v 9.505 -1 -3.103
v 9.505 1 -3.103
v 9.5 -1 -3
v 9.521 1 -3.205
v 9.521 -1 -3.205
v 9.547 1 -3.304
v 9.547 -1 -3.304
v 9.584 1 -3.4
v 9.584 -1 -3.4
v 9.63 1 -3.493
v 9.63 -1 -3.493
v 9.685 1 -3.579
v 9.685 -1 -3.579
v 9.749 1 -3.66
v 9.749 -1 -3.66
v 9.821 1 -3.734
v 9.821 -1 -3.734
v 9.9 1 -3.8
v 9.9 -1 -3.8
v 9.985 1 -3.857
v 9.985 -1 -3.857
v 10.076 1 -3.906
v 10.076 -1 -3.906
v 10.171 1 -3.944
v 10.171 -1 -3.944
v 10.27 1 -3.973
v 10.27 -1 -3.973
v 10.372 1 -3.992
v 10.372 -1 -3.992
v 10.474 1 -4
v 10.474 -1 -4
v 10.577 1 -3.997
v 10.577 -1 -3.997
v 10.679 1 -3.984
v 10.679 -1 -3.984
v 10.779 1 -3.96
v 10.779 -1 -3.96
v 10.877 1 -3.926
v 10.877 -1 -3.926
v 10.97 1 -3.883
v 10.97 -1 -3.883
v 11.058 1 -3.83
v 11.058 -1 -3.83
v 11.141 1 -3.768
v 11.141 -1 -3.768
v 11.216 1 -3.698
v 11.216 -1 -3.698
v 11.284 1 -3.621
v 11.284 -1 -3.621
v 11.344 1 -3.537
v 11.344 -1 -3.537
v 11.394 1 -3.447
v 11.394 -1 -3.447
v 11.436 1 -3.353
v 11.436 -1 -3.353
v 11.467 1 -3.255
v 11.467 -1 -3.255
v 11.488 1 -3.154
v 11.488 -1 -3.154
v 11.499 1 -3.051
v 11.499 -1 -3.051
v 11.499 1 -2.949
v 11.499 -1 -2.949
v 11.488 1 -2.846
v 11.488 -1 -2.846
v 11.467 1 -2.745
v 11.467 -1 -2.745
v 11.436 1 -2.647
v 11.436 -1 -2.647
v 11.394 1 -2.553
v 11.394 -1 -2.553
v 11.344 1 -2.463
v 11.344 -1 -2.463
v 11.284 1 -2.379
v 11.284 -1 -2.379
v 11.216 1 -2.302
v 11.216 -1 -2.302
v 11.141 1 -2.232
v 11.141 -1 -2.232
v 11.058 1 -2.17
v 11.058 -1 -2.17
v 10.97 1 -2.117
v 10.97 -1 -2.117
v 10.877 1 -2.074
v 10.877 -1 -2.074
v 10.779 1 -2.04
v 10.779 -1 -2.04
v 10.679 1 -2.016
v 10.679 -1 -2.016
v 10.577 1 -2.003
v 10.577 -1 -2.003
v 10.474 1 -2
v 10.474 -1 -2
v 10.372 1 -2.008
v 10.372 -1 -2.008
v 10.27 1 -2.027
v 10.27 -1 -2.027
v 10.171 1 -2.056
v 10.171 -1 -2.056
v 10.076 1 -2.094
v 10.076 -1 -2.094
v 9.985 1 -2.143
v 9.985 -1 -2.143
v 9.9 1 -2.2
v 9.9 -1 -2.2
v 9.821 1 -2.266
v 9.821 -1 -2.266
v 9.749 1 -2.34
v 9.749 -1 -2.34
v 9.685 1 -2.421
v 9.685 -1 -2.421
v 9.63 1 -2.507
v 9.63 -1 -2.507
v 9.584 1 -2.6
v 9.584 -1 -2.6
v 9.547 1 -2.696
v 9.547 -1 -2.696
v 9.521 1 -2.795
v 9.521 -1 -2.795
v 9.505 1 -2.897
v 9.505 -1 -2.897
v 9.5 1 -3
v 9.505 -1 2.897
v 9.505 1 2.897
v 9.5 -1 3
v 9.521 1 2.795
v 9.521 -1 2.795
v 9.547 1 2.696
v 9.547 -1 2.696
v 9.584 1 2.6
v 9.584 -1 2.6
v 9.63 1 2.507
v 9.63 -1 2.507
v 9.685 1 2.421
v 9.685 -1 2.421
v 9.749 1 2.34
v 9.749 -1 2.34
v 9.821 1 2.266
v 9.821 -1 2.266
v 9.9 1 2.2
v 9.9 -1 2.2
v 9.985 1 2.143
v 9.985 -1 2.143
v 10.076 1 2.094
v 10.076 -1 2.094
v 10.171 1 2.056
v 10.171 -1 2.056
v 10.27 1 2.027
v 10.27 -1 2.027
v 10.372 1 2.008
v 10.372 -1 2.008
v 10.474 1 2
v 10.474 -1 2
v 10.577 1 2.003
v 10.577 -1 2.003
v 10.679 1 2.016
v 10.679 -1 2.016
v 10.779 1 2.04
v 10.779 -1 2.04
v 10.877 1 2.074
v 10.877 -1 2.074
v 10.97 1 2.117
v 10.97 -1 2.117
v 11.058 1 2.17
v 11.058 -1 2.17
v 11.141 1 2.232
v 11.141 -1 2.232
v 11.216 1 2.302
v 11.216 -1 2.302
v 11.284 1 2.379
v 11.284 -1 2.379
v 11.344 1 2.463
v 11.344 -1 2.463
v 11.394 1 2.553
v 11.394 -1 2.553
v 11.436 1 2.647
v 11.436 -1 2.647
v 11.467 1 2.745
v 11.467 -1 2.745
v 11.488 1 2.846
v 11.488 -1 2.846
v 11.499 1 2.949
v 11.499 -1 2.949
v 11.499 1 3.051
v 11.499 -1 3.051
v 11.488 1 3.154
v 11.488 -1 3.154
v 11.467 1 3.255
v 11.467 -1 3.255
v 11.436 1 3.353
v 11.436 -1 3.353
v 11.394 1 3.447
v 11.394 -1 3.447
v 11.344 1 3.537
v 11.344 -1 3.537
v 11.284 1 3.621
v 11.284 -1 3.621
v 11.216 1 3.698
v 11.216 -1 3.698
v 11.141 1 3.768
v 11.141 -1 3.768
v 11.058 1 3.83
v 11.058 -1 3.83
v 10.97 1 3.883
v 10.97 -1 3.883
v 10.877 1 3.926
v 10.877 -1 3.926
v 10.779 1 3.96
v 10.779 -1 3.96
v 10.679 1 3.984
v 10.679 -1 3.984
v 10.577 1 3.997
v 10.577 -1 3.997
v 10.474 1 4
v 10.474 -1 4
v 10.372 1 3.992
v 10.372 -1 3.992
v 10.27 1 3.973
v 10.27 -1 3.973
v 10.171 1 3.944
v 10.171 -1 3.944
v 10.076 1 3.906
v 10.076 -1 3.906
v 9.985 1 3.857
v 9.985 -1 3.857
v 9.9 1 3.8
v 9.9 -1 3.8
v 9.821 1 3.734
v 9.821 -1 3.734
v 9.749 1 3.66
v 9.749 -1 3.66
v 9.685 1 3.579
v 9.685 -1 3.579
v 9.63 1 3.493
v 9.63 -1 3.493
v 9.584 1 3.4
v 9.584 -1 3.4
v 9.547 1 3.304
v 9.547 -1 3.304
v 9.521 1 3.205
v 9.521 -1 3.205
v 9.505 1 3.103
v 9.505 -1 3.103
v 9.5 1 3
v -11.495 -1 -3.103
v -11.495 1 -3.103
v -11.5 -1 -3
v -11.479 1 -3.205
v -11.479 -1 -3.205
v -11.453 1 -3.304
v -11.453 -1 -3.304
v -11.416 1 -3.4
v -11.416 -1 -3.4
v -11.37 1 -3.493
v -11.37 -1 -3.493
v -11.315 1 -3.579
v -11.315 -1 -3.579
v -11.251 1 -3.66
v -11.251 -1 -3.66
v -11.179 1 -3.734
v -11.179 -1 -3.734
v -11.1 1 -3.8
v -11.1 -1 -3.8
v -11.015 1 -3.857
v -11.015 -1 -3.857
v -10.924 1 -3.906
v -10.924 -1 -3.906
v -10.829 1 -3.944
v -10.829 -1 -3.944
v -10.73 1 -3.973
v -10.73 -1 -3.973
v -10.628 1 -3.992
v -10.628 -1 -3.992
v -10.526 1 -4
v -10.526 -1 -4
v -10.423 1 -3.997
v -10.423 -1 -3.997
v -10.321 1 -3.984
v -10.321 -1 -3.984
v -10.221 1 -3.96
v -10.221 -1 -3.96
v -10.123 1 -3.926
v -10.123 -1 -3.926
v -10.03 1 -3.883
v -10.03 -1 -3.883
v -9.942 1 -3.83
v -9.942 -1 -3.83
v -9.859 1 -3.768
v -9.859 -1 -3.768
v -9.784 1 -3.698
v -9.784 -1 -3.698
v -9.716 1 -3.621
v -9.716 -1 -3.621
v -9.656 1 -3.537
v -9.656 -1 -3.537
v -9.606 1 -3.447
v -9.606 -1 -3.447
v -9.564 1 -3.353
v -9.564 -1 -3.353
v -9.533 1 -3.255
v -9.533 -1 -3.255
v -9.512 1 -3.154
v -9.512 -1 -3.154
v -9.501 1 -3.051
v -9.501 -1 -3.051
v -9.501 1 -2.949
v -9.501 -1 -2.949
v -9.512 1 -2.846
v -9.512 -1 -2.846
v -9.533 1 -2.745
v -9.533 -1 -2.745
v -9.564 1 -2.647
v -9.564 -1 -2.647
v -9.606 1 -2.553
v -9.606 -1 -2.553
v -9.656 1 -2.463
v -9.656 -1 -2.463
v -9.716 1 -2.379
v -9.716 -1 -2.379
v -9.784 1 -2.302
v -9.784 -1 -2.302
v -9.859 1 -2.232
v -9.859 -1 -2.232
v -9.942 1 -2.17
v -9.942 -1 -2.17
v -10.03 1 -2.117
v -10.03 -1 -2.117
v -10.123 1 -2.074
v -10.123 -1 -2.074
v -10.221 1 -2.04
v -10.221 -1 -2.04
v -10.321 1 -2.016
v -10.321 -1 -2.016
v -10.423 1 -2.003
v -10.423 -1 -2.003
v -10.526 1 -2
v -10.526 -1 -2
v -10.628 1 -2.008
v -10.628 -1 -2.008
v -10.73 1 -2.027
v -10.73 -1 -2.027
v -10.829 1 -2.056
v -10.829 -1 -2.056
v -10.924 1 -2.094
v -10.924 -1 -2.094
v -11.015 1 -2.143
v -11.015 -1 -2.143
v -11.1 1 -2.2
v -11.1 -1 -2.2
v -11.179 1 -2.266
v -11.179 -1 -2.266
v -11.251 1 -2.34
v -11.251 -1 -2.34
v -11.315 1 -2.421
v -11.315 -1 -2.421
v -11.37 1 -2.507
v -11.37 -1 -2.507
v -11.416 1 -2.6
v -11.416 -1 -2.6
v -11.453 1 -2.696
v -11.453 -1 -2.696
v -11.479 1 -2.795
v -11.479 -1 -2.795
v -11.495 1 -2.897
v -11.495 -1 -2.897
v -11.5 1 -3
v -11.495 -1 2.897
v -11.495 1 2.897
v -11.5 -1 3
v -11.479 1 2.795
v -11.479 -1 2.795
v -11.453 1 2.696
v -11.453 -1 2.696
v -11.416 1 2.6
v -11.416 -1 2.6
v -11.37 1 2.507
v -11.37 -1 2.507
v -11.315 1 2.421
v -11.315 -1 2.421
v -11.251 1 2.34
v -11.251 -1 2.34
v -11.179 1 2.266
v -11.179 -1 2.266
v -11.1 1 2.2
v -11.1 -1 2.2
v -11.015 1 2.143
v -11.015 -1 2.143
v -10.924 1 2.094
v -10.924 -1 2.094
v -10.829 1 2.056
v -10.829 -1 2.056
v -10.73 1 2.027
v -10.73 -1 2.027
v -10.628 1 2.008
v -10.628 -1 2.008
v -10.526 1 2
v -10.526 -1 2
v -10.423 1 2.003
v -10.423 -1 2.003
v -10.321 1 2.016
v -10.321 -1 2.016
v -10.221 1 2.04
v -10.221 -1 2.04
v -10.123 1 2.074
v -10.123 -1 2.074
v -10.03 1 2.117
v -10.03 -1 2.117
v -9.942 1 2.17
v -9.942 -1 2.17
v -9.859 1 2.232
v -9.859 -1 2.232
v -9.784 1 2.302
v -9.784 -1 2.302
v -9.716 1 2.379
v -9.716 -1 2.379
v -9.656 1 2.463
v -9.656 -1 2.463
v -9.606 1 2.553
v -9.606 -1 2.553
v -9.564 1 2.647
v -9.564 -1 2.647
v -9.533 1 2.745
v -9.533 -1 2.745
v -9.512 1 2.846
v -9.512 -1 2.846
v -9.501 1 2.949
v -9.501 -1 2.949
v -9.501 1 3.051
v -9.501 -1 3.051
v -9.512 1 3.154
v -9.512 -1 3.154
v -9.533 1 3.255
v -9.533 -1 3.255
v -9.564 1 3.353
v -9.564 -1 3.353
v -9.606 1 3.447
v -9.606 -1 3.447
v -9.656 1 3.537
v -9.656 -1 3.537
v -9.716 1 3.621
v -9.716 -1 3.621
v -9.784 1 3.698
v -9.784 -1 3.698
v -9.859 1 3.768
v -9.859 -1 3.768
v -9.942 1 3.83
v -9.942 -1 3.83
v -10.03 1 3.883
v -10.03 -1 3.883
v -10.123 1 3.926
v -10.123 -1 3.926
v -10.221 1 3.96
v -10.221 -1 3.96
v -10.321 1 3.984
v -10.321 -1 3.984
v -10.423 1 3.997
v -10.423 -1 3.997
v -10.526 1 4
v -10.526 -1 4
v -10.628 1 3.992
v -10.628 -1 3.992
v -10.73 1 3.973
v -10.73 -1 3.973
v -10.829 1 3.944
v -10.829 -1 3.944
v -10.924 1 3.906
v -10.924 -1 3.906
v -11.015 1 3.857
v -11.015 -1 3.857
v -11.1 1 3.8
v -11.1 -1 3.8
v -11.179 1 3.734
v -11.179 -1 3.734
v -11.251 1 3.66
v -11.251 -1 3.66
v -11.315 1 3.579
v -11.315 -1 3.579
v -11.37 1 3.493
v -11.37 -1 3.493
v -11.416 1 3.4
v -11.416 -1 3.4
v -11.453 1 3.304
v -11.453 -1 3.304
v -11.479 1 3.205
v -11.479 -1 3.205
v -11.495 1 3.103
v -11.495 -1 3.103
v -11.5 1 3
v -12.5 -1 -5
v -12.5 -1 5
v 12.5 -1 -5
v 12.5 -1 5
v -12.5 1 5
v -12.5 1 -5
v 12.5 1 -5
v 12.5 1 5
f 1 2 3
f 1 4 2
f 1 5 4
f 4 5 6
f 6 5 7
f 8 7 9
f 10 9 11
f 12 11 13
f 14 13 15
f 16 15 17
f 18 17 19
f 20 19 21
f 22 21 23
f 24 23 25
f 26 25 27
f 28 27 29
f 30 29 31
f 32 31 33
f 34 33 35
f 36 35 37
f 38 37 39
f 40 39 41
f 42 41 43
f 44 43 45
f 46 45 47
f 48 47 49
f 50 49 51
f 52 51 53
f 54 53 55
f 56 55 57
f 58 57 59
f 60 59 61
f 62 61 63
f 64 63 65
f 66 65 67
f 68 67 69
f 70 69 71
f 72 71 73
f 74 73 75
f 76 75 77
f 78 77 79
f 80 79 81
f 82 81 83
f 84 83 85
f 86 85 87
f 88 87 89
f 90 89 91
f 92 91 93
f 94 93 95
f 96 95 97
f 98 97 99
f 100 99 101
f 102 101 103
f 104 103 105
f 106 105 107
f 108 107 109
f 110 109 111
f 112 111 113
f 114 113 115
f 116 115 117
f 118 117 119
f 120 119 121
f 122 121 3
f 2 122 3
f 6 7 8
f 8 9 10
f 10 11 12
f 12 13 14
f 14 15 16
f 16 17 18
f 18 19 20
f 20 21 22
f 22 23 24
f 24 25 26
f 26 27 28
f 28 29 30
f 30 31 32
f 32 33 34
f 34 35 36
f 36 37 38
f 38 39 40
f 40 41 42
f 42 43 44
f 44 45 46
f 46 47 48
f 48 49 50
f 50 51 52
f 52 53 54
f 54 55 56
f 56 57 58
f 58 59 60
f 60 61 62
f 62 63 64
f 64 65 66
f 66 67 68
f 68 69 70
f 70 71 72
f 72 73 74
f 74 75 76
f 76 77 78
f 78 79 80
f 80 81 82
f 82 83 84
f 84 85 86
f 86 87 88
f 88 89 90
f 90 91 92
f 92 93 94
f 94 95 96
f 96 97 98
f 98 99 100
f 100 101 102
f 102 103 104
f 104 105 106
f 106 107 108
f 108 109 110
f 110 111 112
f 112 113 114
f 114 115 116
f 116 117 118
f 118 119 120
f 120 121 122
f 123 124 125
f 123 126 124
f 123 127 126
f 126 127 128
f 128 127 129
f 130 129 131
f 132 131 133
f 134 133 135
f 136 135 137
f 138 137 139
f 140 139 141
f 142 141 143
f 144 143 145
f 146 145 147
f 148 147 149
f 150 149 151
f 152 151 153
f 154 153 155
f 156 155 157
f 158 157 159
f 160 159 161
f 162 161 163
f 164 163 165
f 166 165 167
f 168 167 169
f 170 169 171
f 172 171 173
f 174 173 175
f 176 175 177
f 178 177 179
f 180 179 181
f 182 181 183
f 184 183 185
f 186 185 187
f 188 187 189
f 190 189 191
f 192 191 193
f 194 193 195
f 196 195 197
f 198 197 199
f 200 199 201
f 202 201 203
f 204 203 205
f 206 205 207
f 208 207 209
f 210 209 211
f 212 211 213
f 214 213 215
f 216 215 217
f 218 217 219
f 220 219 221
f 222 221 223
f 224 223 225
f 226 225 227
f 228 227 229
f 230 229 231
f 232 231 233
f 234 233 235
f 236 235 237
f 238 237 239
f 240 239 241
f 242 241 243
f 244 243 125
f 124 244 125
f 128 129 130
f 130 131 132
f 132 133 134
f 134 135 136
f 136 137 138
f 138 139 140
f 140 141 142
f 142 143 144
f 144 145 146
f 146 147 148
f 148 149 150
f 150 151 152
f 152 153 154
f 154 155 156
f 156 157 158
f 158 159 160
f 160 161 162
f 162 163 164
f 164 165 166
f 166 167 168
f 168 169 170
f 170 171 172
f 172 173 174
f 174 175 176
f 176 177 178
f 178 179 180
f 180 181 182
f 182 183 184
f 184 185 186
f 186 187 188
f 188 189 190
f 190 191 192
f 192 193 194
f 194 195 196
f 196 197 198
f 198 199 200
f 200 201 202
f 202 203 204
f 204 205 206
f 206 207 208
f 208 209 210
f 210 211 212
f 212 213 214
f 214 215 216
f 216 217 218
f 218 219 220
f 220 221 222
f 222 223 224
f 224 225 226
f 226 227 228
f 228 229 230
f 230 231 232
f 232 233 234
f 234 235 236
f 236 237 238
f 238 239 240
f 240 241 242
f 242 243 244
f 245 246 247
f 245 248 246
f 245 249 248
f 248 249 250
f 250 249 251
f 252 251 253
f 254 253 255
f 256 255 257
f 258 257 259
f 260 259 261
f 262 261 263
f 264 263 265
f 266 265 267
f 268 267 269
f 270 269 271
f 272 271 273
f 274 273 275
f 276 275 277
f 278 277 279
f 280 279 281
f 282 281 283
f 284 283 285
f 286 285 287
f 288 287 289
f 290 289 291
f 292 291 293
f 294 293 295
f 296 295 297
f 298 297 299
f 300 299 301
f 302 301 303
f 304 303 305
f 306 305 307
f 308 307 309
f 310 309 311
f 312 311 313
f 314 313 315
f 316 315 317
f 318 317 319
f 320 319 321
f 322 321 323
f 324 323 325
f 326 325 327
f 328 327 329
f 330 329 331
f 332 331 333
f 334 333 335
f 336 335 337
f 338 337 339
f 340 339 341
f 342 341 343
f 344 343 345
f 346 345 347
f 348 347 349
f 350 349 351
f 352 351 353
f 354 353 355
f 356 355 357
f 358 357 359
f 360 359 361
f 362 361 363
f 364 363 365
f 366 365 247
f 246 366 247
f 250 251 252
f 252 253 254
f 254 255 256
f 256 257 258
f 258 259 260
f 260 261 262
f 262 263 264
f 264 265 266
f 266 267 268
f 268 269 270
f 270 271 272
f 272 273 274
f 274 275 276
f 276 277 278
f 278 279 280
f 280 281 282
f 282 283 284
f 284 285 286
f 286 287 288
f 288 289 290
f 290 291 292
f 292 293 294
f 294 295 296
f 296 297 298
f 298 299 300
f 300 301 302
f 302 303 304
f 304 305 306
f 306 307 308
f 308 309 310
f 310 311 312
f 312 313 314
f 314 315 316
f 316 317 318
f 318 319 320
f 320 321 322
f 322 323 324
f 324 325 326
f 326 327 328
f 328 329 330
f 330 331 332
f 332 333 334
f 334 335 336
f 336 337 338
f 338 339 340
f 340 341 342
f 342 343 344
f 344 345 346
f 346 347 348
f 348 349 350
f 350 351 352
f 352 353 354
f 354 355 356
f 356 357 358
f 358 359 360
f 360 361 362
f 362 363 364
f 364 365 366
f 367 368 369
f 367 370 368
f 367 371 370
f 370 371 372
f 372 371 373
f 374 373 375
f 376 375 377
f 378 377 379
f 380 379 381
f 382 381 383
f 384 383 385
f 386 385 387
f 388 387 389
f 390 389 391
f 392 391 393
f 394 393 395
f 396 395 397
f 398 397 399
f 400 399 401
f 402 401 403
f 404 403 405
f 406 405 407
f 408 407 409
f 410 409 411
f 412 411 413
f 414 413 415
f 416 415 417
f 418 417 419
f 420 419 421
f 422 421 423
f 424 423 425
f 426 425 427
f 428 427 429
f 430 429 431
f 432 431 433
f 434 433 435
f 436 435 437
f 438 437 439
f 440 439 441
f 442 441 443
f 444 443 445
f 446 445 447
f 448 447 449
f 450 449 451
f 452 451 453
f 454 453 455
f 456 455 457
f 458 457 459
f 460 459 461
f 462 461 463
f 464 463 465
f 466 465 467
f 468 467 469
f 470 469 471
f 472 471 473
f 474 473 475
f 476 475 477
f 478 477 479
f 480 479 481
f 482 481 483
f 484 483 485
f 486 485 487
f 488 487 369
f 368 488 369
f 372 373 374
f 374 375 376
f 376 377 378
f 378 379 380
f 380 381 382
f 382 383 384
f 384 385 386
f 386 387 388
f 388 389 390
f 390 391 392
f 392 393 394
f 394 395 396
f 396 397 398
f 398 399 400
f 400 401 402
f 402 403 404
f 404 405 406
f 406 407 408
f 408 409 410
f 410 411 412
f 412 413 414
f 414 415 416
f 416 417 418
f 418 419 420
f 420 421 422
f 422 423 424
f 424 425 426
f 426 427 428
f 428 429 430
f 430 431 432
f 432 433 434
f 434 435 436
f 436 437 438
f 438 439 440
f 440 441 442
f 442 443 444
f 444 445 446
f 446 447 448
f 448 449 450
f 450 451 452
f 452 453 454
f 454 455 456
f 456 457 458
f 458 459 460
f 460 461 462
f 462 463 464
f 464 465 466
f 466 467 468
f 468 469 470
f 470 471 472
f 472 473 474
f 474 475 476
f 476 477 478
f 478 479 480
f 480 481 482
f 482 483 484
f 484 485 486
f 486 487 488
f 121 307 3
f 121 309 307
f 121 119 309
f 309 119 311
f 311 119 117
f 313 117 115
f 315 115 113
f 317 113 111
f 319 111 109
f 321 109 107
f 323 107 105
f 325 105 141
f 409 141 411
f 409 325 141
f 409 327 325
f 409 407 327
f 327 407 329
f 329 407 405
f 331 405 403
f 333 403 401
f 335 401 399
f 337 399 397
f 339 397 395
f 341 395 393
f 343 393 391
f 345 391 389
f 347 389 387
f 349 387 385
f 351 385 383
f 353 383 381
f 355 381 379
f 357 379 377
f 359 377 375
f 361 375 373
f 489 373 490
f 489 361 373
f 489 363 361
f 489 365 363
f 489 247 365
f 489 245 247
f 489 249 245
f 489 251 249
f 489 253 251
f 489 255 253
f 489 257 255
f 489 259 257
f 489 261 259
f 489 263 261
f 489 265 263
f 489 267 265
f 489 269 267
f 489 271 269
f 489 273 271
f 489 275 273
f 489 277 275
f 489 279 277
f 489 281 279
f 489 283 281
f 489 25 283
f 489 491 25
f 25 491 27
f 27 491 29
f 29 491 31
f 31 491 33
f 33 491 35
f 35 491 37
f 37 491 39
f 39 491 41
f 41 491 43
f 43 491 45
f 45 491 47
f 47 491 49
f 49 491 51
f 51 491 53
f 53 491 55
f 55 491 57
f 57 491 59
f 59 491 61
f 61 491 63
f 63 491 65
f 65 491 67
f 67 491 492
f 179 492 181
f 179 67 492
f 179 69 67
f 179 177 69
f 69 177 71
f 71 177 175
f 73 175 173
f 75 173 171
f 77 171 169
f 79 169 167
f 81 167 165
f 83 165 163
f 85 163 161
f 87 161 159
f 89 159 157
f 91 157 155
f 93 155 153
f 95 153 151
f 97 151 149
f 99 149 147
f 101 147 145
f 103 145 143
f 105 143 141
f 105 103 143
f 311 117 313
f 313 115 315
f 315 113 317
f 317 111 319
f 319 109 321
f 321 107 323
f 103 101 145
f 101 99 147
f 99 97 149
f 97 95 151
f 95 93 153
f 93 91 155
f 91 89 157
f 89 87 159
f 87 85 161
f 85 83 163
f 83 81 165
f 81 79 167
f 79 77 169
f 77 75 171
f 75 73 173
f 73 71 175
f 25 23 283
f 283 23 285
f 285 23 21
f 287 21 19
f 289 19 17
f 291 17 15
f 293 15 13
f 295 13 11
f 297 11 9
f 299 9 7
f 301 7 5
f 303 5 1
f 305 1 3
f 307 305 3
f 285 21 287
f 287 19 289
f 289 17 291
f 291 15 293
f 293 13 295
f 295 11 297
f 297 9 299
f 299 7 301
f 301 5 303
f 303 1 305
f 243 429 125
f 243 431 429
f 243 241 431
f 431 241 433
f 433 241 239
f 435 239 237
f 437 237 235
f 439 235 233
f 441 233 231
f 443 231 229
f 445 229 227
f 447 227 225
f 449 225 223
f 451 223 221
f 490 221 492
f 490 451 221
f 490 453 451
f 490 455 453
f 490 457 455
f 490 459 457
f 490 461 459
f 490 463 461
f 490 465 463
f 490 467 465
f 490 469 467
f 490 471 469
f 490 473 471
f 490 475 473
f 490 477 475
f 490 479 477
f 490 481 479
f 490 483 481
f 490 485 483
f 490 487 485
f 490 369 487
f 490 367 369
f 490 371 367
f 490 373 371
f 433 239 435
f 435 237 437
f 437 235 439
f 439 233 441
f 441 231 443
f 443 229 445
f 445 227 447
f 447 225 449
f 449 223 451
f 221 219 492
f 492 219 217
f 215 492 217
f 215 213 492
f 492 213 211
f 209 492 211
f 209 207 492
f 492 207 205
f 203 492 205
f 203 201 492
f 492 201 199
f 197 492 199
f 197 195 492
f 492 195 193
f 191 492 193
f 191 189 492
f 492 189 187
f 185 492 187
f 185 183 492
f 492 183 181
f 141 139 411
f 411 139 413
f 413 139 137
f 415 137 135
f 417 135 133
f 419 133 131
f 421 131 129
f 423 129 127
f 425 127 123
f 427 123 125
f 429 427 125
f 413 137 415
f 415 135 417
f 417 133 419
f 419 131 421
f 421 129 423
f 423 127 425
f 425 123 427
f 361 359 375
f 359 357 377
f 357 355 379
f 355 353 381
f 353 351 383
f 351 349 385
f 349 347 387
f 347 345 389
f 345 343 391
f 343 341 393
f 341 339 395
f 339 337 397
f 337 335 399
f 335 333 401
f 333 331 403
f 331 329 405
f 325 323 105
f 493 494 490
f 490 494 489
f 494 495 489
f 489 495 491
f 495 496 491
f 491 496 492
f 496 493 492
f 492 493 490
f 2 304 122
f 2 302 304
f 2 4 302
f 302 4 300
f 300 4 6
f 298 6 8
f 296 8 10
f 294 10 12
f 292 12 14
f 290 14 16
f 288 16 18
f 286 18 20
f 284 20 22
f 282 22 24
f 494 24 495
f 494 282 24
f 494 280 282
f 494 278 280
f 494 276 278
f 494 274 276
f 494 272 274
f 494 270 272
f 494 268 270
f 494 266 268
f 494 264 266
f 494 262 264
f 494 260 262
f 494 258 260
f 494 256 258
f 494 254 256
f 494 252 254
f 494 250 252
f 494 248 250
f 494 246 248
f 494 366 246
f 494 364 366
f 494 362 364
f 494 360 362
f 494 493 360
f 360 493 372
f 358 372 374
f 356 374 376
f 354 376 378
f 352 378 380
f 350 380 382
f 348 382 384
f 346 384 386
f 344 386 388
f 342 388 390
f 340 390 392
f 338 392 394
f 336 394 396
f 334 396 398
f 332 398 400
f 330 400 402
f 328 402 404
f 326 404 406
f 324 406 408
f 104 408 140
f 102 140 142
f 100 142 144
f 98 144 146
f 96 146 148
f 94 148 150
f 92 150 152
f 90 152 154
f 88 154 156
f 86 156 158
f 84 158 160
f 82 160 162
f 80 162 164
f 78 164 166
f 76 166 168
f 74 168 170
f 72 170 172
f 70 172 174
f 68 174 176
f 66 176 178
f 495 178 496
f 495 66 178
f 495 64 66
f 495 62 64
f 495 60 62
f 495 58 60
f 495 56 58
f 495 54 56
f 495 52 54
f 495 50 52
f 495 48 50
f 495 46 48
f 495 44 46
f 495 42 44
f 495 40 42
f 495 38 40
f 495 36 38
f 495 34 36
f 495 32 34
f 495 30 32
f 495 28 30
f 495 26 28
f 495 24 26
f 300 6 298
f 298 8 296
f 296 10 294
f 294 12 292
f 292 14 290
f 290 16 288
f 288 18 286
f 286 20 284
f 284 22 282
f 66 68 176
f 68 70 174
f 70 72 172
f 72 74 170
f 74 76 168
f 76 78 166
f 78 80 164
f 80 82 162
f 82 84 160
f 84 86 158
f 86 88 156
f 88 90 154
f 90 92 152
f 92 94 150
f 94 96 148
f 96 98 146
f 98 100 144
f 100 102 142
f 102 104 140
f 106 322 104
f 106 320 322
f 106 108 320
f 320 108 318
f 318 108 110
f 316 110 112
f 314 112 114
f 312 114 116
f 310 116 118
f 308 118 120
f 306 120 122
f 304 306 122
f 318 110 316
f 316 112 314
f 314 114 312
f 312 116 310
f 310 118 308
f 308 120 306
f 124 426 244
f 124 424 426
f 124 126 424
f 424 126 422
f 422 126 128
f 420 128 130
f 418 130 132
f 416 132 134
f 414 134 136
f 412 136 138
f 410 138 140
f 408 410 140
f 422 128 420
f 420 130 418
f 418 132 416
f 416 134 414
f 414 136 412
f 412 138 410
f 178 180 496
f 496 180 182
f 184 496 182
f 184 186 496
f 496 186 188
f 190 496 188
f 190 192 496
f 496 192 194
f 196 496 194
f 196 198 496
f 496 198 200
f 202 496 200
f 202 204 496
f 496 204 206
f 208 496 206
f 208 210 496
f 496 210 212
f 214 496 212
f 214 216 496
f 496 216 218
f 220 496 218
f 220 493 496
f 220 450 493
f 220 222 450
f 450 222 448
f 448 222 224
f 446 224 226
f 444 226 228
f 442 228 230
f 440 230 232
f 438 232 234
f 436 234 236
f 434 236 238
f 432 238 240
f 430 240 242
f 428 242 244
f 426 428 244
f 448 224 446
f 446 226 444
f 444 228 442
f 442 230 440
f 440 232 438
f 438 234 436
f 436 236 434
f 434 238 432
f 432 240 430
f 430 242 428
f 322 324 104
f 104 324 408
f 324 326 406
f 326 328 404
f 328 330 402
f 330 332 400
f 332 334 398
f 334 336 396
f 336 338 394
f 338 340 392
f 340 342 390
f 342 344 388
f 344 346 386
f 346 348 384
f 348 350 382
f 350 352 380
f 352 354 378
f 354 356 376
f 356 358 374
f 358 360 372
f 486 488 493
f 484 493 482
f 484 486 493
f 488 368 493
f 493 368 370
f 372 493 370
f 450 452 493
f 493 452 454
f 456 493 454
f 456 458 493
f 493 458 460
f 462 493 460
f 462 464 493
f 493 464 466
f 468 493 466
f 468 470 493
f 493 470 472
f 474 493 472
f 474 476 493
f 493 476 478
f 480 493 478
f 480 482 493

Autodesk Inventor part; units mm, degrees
ref_plane "YZ Plane" through (0, 0, 0) normal (1, 0, 0) x (0, 1, 0)
ref_plane "XZ Plane" through (0, 0, 0) normal (0, 1, 0) x (-1, 0, 0)
ref_plane "XY Plane" through (0, 0, 0) normal (0, 0, 1) x (1, 0, 0)
sketch "Sketch1" plane through (0, 0, 0) normal (0, 1, 0) x (-1, 0, 0)
  line L0 (-12.5, 5) -> (12.5, 5)
  line L1 (12.5, 5) -> (12.5, -5)
  line L2 (12.5, -5) -> (-12.5, -5)
  line L3 (-12.5, -5) -> (-12.5, 5)
  circle A0 centre (10.5, 3) radius 1
  circle A1 centre (10.5, -3) radius 1
  circle A2 centre (-10.5, 3) radius 1
  circle A3 centre (-10.5, -3) radius 1
  point P0 (0, 0)
  point P1 (0, 0)
  dimension "d0" = 25
  dimension "d1" = 10
  dimension "d3" = 2
  dimension "d4" = 2
  dimension "d5" = 2
  dimension "d6" = 2
  dimension "d7" = 2
  dimension "d8" = 2
  dimension "d9" = 2
  dimension "d10" = 2
  dimension "d13" = 2
  dimension "d14" = 2
  dimension "d15" = 2
  dimension "d16" = 2
  dimension "d17" = 6
  dimension "d18" = 21
extrude "Extrusion1" add sketch "Sketch1" along normal mid plane 2
properties part number "Plat"
